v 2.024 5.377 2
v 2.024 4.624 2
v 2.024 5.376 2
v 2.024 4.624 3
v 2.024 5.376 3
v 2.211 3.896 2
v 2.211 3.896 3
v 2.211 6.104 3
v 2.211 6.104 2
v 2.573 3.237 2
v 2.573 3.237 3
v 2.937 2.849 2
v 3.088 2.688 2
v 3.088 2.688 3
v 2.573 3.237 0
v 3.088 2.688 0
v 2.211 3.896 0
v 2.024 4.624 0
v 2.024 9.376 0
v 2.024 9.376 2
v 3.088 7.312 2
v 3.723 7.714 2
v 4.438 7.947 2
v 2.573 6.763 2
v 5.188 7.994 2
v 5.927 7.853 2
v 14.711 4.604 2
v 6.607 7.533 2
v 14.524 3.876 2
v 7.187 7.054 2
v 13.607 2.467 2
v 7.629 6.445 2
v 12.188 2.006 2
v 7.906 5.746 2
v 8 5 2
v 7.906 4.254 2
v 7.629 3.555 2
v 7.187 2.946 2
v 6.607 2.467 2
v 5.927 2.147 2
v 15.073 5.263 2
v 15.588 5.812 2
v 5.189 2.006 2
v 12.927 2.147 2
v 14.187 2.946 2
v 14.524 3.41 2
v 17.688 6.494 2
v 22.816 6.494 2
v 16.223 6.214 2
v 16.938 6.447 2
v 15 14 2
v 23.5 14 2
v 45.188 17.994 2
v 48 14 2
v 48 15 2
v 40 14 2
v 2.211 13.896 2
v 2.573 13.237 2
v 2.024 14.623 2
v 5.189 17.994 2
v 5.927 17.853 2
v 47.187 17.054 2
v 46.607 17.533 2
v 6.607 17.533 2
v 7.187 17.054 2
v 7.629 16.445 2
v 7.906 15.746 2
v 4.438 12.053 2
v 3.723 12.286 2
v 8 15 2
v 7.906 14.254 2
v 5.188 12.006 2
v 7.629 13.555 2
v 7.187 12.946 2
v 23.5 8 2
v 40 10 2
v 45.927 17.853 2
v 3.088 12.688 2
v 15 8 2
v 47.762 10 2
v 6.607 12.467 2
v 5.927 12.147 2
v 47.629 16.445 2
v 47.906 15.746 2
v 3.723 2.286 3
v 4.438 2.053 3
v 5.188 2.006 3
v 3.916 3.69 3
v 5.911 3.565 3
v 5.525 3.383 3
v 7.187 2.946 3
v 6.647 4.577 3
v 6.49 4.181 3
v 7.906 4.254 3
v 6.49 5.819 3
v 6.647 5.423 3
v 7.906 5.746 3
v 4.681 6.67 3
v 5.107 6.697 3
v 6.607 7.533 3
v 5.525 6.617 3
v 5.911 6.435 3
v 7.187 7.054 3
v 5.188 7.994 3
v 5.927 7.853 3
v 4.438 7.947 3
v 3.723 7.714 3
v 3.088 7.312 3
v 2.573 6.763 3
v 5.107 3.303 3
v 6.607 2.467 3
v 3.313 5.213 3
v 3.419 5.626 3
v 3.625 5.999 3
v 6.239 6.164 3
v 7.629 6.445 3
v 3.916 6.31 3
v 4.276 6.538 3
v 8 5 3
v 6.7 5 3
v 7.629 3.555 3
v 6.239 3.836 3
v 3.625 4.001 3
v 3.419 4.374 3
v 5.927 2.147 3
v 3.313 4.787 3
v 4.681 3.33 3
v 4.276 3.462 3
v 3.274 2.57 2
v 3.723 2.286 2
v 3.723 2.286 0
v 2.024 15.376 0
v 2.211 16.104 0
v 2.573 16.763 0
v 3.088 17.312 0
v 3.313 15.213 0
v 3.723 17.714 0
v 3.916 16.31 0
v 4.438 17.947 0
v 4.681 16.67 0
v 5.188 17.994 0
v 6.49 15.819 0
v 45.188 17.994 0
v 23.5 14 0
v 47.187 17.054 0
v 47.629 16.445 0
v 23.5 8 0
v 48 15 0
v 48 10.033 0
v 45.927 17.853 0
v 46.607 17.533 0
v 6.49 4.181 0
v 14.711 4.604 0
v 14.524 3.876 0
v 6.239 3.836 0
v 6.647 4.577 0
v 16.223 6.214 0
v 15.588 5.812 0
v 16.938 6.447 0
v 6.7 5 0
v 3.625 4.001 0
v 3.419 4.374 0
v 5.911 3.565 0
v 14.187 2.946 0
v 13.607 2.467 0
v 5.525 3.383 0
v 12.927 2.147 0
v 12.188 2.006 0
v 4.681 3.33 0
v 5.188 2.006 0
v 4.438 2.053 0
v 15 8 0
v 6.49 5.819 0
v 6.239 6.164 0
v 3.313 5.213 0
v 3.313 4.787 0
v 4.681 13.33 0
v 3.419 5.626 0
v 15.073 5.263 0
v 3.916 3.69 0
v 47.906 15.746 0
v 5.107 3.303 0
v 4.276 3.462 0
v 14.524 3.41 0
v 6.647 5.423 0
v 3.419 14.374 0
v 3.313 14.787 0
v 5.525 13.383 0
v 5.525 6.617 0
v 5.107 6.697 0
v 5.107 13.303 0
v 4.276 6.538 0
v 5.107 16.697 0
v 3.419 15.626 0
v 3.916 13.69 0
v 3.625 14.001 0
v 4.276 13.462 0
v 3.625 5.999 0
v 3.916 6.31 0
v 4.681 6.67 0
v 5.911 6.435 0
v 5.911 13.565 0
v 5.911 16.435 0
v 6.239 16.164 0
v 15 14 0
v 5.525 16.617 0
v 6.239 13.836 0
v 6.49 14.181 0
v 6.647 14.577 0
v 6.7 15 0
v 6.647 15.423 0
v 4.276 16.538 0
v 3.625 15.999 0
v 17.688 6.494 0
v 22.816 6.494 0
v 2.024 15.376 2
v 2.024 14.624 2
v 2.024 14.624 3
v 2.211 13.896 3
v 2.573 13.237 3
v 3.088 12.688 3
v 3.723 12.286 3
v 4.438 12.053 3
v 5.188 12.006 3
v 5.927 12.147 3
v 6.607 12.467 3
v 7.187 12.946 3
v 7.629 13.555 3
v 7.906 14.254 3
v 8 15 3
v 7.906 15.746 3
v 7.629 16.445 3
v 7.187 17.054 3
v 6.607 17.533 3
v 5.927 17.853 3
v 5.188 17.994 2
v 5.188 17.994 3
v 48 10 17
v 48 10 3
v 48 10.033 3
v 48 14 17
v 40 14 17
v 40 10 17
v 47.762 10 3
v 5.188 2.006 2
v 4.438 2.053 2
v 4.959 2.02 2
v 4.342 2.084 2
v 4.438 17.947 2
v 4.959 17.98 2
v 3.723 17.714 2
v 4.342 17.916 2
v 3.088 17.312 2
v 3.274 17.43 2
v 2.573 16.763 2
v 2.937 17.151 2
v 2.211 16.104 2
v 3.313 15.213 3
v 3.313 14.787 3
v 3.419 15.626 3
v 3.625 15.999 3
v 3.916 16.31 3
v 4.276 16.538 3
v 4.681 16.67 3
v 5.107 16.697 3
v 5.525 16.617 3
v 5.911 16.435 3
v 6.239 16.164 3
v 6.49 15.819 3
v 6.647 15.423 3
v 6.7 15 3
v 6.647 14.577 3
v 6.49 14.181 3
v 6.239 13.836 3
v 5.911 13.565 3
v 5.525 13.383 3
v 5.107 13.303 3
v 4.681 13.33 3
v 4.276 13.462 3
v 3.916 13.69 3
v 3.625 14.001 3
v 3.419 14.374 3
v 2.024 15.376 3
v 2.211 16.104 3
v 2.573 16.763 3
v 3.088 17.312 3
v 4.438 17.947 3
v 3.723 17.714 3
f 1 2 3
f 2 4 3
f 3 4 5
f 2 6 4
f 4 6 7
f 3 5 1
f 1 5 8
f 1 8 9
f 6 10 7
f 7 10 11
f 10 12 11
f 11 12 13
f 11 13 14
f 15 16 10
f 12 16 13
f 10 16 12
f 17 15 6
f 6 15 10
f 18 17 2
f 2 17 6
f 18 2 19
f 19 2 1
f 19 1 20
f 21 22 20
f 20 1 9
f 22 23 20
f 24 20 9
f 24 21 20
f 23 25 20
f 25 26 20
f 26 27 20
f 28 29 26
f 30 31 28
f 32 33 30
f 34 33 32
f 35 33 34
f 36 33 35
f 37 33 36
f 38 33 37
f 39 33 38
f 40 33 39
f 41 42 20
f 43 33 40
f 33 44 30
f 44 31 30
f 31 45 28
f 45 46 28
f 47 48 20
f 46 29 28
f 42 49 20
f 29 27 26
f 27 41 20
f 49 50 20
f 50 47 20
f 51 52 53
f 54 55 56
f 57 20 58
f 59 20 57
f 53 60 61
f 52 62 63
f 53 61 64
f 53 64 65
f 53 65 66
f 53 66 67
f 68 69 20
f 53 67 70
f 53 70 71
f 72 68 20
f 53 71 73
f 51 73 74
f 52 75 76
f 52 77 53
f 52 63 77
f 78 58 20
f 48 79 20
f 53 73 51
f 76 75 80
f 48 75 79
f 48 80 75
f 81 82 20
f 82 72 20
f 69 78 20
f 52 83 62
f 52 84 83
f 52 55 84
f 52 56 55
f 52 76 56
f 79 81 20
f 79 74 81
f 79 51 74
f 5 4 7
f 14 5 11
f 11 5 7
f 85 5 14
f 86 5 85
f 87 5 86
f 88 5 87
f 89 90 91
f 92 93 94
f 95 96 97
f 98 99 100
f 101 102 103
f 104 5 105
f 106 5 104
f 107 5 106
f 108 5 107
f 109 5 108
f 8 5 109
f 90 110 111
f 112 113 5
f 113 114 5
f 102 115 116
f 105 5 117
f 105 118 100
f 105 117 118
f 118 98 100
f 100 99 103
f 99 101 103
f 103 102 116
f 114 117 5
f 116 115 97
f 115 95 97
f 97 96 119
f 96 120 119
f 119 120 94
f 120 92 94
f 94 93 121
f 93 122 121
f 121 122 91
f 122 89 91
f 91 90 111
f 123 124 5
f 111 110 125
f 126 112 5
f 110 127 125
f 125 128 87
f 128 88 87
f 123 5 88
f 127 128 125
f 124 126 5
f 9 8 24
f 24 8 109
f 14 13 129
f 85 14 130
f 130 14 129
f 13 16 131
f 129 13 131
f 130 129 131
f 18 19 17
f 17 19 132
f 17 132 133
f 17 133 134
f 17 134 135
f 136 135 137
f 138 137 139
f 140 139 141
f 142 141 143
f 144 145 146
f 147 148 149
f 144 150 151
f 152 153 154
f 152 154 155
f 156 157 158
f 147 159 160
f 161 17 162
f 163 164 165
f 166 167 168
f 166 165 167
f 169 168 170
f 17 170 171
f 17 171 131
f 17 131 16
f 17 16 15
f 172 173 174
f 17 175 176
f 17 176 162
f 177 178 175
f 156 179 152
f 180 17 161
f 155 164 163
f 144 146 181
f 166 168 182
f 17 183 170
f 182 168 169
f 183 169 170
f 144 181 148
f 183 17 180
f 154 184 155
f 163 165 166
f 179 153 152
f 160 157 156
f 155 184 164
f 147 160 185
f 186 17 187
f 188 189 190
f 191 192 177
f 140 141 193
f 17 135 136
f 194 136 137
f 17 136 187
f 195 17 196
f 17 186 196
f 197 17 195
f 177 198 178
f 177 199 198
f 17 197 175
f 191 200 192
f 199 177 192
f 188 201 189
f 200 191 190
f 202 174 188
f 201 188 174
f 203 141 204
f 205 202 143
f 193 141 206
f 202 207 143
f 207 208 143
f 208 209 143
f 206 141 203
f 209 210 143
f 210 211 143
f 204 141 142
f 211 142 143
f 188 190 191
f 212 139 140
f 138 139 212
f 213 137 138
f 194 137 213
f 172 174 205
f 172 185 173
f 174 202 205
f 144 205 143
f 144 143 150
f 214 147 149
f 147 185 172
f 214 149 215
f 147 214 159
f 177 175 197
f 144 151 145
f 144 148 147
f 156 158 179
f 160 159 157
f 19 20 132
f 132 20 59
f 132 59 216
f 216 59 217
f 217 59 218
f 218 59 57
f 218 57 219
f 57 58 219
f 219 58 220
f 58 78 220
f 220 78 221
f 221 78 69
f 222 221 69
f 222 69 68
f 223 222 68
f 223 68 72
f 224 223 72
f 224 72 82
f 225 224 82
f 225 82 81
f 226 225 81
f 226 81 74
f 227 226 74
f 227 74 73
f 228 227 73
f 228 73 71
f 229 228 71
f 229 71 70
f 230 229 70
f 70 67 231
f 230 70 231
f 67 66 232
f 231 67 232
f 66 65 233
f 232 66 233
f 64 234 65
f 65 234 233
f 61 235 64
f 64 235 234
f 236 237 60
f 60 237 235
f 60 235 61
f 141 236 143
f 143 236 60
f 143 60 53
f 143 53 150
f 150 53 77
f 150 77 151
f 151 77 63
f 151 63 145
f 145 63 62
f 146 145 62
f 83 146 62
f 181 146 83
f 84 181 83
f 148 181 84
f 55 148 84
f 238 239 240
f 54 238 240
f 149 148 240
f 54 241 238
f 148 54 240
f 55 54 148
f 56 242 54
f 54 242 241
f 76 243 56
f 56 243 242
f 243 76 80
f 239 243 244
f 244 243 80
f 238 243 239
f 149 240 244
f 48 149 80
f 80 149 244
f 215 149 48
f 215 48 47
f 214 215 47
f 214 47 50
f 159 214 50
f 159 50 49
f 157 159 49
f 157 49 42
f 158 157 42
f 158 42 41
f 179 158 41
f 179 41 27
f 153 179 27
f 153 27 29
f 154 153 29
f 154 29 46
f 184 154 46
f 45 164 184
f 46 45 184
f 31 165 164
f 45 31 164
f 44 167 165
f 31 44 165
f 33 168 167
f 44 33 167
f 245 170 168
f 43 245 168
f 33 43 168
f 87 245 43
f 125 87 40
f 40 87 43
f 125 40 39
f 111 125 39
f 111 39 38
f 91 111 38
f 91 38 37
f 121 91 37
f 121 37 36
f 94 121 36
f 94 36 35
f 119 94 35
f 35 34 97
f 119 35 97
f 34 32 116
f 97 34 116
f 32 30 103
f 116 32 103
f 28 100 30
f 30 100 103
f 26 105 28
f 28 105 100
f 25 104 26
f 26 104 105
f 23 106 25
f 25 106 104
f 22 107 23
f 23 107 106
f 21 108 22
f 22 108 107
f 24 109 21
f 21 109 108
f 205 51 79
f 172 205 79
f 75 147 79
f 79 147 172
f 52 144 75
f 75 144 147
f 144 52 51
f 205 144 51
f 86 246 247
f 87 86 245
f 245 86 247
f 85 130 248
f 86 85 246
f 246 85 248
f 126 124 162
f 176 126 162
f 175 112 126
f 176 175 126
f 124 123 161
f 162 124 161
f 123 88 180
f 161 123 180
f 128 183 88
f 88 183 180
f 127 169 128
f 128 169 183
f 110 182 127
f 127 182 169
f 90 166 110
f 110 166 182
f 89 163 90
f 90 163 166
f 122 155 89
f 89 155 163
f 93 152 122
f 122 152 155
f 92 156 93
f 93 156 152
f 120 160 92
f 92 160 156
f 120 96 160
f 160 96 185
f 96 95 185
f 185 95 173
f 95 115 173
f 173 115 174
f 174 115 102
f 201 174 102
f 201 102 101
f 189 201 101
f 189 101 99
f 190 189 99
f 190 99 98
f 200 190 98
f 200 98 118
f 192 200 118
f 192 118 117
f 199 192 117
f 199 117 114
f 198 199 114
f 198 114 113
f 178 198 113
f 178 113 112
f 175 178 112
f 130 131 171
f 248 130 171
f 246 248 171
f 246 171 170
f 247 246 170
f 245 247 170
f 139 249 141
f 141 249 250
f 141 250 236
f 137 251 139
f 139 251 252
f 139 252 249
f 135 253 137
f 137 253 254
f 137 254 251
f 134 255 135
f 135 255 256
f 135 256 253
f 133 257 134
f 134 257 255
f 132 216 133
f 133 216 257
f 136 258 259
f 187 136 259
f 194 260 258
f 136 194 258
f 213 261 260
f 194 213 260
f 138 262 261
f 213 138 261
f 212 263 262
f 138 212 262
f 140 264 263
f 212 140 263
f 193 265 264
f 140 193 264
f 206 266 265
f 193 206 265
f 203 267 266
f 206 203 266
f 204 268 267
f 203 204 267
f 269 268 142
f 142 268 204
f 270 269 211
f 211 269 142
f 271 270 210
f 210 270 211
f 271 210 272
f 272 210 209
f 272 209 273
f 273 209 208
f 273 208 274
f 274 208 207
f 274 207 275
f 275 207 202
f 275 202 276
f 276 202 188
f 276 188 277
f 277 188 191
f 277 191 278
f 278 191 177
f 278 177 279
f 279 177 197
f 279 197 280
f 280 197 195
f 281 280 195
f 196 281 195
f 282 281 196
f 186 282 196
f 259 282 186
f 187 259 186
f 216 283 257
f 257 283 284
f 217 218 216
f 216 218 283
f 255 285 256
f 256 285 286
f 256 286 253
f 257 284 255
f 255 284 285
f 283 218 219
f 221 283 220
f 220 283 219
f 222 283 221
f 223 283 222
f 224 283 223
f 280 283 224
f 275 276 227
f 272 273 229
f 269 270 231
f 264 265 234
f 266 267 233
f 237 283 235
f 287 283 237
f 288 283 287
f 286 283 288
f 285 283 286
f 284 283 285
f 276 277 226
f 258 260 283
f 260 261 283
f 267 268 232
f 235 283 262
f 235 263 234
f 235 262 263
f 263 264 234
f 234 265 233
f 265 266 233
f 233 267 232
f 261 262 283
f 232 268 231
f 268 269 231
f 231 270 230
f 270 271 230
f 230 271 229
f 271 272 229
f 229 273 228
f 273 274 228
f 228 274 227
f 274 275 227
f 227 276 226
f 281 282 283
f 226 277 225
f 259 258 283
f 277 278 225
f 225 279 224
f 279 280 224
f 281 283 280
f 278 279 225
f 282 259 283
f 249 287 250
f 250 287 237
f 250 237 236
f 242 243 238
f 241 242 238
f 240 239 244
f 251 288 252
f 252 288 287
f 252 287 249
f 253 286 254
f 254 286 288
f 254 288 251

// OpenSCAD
// X-axis homing target for dc42's modulated IR

$fn=25;
thickness = 2;


difference() {
	union() {
		translate([25,12,0]) roundedRect([43,9,thickness], 3);

		translate([8.5,7,0]) roundedRect([10,7,thickness], 3);

		translate([15,2,0]) cube([10,10,thickness]); //Filler, lower part
		translate([40,12-thickness,thickness]) cube([8,thickness*2,15]); //Arm
//       	translate([44,2,thickness]) cube([thickness,10-thickness,15]); //Arm support
		translate([5,5,thickness]) cylinder(h=1,r=3);
		translate([5,15,thickness]) cylinder(h=1,r=3);
	}
	translate([5,5,-1]) cylinder(h=thickness+3,r=1.7);
	translate([5,15,-1]) cylinder(h=thickness+3,r=1.7);
	translate([15,8,-1]) cube([8.5,6,thickness+2]); //Square hole
//	translate([44-1,0,9]) rotate([45,0,0]) cube([thickness+2,12,12]);  //Arm bevel
//	translate([53,-4,-1]) rotate([0,0,45]) cube([10,10,thickness+2]); //Outer bevel

	translate([36,2,-1]) roundedRect([40,6,thickness+2],3);


		translate([20,-4,-1]) rotate([0,0,8]) cube([30,10,thickness+2]);
	
}

module roundedRect(size, radius)
{
	x = size[0];
	y = size[1];
	z = size[2];

	linear_extrude(height=z)
	hull()
	{
		// place 4 circles in the corners, with the given radius
		translate([(-x/2)+(radius/2), (-y/2)+(radius/2), 0])
		circle(r=radius);
	
		translate([(x/2)-(radius/2), (-y/2)+(radius/2), 0])
		circle(r=radius);
	
		translate([(-x/2)+(radius/2), (y/2)-(radius/2), 0])
		circle(r=radius);
	
		translate([(x/2)-(radius/2), (y/2)-(radius/2), 0])
		circle(r=radius);
	}
}
